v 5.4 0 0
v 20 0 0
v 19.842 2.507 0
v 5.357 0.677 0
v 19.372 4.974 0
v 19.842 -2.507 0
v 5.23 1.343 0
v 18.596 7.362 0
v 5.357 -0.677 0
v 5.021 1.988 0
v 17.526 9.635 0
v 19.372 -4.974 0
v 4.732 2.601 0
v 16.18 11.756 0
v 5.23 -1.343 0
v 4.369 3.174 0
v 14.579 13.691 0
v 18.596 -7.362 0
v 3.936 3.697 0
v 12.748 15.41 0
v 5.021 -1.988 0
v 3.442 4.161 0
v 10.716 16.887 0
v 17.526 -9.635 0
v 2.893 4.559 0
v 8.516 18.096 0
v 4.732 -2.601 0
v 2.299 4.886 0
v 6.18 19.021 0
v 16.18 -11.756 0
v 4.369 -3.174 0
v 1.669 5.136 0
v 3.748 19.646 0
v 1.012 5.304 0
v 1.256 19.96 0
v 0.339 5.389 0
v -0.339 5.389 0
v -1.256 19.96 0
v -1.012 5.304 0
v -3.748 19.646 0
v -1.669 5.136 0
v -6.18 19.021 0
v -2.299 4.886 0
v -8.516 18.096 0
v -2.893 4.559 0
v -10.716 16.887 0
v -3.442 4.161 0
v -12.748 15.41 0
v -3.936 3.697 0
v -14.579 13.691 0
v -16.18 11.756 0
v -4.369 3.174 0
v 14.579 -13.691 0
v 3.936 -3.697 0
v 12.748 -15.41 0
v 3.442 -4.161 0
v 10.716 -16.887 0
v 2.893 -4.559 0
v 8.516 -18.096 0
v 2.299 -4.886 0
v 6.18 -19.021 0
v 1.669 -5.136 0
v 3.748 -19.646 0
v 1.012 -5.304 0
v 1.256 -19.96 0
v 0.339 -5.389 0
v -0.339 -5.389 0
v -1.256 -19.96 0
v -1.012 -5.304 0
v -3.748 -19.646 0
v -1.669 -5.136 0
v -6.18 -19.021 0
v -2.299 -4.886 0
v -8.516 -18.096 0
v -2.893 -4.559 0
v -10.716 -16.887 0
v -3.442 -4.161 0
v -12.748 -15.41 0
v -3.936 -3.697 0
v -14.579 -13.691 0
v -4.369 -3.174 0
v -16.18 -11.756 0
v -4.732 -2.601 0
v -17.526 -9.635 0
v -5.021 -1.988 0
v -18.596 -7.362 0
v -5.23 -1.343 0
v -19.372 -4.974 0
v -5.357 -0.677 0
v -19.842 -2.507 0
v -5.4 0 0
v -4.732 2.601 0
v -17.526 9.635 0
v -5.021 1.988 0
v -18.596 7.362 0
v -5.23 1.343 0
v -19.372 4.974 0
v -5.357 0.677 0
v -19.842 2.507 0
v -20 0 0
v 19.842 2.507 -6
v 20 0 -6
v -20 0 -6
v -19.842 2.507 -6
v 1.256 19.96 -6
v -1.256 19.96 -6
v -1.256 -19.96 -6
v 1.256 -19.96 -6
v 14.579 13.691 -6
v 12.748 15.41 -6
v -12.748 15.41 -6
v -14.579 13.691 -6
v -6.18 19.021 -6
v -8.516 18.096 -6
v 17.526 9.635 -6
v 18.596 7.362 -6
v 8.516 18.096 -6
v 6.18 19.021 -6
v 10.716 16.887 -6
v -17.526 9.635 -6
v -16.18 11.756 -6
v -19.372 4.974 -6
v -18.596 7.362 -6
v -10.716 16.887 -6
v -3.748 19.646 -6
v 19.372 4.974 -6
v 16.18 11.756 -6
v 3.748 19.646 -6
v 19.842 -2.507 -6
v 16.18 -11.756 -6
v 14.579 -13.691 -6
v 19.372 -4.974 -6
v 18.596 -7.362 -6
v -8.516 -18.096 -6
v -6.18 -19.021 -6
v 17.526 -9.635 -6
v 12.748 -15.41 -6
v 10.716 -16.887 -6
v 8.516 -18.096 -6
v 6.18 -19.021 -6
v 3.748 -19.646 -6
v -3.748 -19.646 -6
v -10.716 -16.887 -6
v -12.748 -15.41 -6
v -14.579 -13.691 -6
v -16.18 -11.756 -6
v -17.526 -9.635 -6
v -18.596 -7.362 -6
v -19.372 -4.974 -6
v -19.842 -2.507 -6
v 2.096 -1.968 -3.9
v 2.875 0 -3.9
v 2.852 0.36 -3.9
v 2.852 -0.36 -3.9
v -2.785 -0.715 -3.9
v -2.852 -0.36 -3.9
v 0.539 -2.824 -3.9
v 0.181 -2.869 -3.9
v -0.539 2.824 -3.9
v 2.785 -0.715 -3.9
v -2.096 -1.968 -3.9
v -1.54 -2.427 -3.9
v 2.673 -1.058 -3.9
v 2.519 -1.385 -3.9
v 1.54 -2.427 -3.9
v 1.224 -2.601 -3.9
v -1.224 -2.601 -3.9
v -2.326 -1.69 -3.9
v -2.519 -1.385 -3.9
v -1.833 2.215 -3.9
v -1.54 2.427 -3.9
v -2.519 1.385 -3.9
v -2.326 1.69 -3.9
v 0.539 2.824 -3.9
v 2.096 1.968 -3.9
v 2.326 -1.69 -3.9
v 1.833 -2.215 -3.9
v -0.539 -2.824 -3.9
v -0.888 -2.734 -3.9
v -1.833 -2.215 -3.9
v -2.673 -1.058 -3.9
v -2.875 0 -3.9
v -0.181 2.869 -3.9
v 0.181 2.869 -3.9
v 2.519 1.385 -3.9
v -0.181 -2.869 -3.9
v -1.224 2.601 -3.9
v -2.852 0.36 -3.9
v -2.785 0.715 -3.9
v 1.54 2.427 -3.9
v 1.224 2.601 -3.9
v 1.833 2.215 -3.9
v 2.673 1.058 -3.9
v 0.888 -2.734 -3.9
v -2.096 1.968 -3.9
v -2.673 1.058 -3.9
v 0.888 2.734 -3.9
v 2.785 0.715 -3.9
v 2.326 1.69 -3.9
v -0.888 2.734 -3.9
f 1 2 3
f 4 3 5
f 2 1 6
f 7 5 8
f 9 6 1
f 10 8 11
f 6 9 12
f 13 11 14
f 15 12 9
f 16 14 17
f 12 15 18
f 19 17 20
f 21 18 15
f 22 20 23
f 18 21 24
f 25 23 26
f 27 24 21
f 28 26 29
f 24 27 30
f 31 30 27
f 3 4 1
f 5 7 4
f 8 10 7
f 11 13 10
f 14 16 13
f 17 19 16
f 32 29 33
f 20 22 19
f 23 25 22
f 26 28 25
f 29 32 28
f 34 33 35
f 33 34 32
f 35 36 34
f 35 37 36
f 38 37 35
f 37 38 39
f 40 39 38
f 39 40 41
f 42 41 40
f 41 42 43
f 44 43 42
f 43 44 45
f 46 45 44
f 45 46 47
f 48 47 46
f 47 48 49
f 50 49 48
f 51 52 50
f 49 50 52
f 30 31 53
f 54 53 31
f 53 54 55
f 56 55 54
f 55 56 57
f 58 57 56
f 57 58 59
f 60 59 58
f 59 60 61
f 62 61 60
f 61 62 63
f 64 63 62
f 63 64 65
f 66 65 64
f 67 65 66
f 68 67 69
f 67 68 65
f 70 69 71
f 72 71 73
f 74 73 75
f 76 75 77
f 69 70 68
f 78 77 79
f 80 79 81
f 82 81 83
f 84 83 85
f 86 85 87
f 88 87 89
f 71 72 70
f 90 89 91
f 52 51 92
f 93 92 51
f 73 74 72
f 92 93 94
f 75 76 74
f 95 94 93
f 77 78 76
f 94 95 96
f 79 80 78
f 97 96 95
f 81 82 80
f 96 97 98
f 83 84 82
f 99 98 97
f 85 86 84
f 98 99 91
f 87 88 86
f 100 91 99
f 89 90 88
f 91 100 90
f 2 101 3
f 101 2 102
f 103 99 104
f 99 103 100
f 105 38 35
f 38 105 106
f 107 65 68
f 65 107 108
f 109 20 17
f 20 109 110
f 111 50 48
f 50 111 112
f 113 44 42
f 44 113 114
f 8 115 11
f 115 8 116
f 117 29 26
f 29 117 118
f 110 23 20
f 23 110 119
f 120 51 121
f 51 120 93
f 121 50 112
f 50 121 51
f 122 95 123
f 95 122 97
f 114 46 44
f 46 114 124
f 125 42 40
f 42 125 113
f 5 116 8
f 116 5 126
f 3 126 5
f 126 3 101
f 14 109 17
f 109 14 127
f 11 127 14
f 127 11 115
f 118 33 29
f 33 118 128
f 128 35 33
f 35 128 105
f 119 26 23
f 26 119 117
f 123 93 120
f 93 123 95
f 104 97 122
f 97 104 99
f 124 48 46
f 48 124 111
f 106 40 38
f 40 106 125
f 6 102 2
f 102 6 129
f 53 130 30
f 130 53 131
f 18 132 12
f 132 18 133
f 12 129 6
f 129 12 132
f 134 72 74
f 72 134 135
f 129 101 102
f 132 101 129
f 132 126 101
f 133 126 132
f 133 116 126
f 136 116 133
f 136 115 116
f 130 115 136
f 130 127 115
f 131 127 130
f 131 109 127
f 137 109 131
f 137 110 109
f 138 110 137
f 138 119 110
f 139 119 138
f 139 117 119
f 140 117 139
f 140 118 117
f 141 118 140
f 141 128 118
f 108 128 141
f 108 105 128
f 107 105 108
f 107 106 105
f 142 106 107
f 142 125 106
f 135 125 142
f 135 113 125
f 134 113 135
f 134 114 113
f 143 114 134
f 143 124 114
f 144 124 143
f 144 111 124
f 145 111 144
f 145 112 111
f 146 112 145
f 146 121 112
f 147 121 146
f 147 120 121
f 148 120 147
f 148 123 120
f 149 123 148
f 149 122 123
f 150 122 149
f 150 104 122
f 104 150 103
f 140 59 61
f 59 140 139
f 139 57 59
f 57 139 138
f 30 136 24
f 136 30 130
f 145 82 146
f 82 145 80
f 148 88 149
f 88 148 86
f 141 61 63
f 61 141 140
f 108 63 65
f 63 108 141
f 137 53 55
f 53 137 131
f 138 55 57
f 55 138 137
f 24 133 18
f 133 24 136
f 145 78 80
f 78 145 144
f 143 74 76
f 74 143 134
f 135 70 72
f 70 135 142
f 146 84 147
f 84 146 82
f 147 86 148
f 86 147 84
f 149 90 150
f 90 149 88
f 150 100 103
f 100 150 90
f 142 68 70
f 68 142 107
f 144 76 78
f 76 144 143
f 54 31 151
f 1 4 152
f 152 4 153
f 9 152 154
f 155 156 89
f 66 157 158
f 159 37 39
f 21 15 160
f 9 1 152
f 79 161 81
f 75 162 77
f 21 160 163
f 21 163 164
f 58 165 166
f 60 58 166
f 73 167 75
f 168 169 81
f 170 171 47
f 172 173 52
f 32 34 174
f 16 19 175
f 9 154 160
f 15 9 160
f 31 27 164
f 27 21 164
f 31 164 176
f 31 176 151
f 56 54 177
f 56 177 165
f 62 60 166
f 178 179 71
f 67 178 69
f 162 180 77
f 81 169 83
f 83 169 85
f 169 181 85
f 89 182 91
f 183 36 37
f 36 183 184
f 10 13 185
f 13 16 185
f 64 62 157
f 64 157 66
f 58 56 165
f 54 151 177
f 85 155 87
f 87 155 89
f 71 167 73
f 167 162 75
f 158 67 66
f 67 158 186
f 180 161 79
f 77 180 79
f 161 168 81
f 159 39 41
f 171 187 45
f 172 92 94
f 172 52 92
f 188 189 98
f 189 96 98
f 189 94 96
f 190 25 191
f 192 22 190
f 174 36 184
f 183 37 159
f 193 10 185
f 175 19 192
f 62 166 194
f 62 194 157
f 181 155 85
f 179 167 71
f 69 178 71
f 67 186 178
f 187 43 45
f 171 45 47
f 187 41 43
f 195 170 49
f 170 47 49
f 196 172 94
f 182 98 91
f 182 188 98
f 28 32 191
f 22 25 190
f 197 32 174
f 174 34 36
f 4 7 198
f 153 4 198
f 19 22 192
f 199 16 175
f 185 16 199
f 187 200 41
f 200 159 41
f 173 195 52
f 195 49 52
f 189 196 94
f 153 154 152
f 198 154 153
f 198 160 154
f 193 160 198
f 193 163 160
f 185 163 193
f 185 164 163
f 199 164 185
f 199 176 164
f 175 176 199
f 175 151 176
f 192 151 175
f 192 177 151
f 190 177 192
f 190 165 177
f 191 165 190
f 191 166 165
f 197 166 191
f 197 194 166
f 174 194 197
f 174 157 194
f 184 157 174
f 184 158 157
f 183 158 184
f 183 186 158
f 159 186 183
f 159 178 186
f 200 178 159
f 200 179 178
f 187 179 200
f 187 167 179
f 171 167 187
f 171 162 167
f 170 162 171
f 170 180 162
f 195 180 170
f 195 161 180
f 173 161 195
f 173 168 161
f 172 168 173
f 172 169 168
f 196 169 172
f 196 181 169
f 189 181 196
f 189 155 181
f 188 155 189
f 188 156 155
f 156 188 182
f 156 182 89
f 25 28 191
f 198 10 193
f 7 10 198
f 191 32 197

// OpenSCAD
$fn = 50;


difference() {
	union() {
		translate(v = [0, 0, -3.0000000000]) {
			cylinder(h = 3, r = 10.0000000000);
		}
		translate(v = [0, 0, -6.0000000000]) {
			cylinder(h = 6, r = 20.0000000000);
		}
	}
	union() {
		translate(v = [0, 0, 0]) {
			rotate(a = [0, 0, 0]) {
				difference() {
					union() {
						#translate(v = [0, 0, -3.0000000000]) {
							cylinder(h = 3, r = 2.6000000000);
						}
						#translate(v = [0, 0, -3.9000000000]) {
							cylinder(h = 3.9000000000, r1 = 2.8750000000, r2 = 5.4000000000);
						}
						#translate(v = [0, 0, -3.0000000000]) {
							cylinder(h = 3, r = 2.8750000000);
						}
						#translate(v = [0, 0, -3.0000000000]) {
							cylinder(h = 3, r = 2.6000000000);
						}
					}
					union();
				}
			}
		}
	}
}
